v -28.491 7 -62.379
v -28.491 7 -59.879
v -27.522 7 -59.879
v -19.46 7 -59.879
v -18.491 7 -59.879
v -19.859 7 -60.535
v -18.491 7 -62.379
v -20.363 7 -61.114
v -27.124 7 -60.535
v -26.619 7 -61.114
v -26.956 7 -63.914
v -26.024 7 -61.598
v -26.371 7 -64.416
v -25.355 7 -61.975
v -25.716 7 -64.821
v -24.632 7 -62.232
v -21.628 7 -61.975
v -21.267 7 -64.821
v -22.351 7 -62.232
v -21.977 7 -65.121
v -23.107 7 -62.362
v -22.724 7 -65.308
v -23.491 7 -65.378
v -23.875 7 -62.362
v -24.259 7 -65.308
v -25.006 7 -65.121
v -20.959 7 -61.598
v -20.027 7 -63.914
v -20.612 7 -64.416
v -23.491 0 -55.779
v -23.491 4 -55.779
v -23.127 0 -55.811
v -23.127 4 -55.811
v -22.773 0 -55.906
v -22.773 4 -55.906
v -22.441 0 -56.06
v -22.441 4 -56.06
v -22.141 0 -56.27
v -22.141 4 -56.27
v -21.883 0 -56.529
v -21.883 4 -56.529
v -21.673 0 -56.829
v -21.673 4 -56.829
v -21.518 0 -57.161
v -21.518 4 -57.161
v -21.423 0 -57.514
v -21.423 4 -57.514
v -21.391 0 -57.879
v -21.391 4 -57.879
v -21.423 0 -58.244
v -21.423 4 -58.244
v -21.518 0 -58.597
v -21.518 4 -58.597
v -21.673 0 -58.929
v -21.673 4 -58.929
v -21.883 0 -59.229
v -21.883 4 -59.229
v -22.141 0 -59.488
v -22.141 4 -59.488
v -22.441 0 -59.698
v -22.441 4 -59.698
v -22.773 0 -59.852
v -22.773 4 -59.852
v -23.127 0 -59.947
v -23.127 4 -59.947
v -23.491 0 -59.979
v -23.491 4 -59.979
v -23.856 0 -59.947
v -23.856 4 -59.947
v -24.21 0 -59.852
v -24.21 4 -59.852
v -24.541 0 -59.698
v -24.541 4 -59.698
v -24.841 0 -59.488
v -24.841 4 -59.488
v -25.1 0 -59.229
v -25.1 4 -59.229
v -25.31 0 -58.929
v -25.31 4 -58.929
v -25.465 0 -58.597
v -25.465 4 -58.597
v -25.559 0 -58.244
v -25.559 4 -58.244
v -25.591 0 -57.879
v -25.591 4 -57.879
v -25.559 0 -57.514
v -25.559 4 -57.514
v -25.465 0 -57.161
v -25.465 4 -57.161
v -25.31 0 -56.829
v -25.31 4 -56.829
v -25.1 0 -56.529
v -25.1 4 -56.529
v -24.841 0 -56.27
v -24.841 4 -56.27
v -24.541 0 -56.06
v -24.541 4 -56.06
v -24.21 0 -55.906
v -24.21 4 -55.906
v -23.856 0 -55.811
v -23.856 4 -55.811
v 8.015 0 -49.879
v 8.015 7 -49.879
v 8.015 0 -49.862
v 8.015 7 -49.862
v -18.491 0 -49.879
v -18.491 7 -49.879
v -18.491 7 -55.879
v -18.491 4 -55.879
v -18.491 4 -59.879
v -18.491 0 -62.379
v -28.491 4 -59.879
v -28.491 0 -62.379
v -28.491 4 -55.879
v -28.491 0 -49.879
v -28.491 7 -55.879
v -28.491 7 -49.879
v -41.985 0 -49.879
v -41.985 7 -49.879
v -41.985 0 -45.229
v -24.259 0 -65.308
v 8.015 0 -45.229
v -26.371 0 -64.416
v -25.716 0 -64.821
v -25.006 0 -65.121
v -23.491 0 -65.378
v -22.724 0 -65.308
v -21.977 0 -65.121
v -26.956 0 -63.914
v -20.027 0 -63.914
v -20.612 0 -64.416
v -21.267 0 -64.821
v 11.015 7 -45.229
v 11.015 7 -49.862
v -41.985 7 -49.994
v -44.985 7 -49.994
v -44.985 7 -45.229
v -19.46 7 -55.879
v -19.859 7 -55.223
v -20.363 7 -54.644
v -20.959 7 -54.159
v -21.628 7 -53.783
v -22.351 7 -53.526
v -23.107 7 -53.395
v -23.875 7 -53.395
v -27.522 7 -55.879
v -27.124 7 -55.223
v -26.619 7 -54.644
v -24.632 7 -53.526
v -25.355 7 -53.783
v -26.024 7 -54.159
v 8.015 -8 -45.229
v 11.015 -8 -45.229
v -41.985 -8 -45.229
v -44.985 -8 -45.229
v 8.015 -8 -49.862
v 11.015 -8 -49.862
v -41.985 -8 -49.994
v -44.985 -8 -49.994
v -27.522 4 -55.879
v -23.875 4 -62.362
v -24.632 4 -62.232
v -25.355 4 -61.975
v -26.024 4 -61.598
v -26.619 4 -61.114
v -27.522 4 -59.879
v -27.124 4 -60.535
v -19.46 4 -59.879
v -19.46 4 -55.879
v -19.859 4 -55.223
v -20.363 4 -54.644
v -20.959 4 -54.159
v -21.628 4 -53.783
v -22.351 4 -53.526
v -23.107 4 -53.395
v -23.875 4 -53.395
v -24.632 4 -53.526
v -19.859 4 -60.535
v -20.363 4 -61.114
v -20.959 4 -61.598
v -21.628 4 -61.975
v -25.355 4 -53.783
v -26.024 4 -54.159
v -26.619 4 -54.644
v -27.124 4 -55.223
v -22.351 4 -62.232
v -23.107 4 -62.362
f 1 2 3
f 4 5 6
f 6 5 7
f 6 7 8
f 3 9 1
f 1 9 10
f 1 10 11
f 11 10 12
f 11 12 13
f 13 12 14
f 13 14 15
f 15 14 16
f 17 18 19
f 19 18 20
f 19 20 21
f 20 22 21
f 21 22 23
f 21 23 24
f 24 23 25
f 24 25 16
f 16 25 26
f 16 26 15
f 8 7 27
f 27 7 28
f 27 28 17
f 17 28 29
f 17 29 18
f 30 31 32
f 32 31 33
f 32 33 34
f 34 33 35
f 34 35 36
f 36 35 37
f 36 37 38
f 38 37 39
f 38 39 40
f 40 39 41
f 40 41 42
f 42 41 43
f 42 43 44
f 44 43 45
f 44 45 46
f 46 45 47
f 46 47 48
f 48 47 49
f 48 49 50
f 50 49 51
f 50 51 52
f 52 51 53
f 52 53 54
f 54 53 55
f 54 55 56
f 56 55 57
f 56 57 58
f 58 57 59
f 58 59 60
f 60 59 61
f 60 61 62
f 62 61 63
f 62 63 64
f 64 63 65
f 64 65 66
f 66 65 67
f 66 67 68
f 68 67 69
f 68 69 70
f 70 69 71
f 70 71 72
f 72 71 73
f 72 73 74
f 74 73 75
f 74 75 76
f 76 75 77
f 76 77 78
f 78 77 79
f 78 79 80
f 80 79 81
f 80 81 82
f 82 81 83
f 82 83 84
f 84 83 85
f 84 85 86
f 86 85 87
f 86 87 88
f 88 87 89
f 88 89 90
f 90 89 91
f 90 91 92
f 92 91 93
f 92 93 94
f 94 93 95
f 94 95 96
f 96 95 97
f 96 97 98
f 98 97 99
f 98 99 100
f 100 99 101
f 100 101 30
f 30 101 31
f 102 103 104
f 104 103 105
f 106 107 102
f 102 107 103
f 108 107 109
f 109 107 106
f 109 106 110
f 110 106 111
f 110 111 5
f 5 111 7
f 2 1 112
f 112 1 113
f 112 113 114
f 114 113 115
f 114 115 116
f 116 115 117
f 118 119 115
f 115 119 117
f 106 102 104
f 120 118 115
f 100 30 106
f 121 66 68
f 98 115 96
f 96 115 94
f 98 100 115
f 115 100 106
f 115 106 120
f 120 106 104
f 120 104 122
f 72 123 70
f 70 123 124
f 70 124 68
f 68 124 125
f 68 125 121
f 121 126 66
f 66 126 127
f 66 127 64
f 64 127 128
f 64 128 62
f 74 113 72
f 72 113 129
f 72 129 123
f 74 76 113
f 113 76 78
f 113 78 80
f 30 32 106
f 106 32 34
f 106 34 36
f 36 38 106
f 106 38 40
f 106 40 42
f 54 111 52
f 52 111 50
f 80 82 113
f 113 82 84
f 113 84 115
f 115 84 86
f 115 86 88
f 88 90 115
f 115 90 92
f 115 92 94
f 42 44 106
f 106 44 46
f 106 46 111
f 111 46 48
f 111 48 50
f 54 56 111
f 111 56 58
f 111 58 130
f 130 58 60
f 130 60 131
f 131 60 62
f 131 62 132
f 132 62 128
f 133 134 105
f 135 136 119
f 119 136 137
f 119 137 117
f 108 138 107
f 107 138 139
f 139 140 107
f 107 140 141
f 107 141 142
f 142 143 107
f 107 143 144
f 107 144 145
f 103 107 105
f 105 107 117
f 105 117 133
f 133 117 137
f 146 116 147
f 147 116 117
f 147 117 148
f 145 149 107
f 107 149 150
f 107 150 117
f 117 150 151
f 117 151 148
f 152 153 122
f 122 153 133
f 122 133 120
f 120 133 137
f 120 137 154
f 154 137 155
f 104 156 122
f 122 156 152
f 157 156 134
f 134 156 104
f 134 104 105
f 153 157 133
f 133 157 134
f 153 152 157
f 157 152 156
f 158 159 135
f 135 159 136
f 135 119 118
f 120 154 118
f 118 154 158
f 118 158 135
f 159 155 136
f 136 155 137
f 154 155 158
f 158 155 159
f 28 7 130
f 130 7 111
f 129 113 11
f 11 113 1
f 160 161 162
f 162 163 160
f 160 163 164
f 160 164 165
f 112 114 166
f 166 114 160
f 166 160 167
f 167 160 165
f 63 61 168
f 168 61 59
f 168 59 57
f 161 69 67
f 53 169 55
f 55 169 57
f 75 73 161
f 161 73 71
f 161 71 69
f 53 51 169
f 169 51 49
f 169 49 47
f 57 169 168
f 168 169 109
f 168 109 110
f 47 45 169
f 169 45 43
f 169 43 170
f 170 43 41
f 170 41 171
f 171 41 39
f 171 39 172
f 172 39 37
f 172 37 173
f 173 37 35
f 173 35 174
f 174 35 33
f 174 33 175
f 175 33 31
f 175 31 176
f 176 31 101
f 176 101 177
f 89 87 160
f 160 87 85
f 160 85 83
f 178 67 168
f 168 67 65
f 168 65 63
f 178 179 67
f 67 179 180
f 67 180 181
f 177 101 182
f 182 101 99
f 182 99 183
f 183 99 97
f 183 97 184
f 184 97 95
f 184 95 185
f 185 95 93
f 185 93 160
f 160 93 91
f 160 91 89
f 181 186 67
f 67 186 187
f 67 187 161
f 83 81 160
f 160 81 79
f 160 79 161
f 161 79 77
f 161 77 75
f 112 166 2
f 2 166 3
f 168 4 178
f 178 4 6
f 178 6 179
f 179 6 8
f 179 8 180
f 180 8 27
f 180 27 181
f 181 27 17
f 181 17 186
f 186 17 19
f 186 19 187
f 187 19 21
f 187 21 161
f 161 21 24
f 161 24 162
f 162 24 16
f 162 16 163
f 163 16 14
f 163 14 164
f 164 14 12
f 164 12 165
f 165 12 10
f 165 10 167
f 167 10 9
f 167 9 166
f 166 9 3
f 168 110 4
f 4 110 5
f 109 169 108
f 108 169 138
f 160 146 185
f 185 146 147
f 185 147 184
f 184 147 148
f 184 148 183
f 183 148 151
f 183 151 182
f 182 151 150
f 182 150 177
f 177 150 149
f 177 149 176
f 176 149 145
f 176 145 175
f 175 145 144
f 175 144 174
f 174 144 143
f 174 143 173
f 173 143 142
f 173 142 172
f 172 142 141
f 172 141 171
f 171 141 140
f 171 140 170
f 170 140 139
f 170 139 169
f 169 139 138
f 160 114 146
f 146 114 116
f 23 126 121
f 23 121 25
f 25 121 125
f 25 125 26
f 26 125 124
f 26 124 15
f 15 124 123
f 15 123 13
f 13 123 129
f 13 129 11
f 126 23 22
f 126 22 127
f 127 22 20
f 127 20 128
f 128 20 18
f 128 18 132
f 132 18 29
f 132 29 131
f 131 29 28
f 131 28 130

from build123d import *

# Parameters (mm, degrees)
SKETCH1_W           = 50
SKETCH1_H           = 100
BOSS_EXTRUDE1_DEPTH = 7
CUT_EXTRUDE1_DEPTH  = 10
CUT_EXTRUDE2_DEPTH  = 28
SKETCH5_W           = 3
SKETCH5_H           = 4.633494333
SKETCH5_H_2         = 4.765216978
BOSS_EXTRUDE2_DEPTH = 15
SKETCH6_R           = 2.1
CUT_EXTRUDE3_DEPTH  = 15
CHAMFER1_SIZE       = 3
CUT_EXTRUDE4_DEPTH  = 3
FILLET1_R           = 5
SKETCH8_W           = 66.498468349
SKETCH8_H           = 65.695900627
CUT_EXTRUDE5_DEPTH  = 29


with BuildPart() as part:
    # Sketch1 → Boss-Extrude1 (new body)
    with BuildSketch(Plane(origin=(0, 0, 0), x_dir=(1, 0, 0), z_dir=(0, 1, 0))):
        with Locations((-16.984615004, 32.878894954)):
            Rectangle(SKETCH1_W, SKETCH1_H)
    extrude(amount=BOSS_EXTRUDE1_DEPTH)

    # Sketch2 → Cut-Extrude1 (cut)
    with BuildSketch(Plane.XZ):
        Polygon((8.015384996, -49.878894954), (6.015384996, -49.878894954), (-18.491384598, -49.878894954), (-18.491384598, -50.378894954), (-18.491384598, -65.378894954), (-28.491384598, -65.378894954), (-28.491384598, -50.378894954), (-28.491384598, -49.878894954), (-39.984615004, -49.878894954), (-41.984615004, -49.878894954), (-41.984615004, -82.878894954), (8.015384996, -82.878894954), align=None)
    extrude(amount=-CUT_EXTRUDE1_DEPTH, mode=Mode.SUBTRACT)

    # Sketch4 → Cut-Extrude2 (cut)
    with BuildSketch(Plane.XZ):
        Polygon((8.015384996, -42.228894954), (-0.484615004, -42.228894954), (-33.484615004, -42.228894954), (-41.984615004, -42.228894954), (-41.984615004, -45.228894954), (-33.484615004, -45.228894954), (-0.484615004, -45.228894954), (8.015384996, -45.228894954), align=None)
    extrude(amount=-CUT_EXTRUDE2_DEPTH, mode=Mode.SUBTRACT)


with BuildPart() as cut_extrude2_piece_1:
    # of the separate pieces the step leaves, piece 1, a body of its own (cut_extrude2_pieces)
    add(part.part.solids().sort_by_distance((8.015384996, 0, 17.121105046))[0])

    # Sketch8 → Cut-Extrude5 (cut)
    with BuildSketch(Plane(origin=(0, 7, 0), x_dir=(1, 0, 0), z_dir=(0, 1, 0))):
        with Locations((-10.449420701, 11.294291779)):
            Rectangle(SKETCH8_W, SKETCH8_H)
    extrude(amount=-CUT_EXTRUDE5_DEPTH, mode=Mode.SUBTRACT)


with BuildPart() as cut_extrude2_piece_2:
    # of the separate pieces the step leaves, piece 2, a body of its own (cut_extrude2_pieces)
    add(part.part.solids().sort_by_distance((8.015384996, 0, -49.878894954))[0])

    # Sketch5 → Boss-Extrude2 (add)
    with BuildSketch(Plane(origin=(0, 7, 0), x_dir=(1, 0, 0), z_dir=(0, 1, 0))):
        with Locations((9.515384996, 47.545642121)):
            Rectangle(SKETCH5_W, SKETCH5_H)
        with Locations((-43.484615004, 47.611503443)):
            Rectangle(SKETCH5_W, SKETCH5_H_2)
    extrude(amount=-BOSS_EXTRUDE2_DEPTH)

    # Sketch6 → Cut-Extrude3 (cut)
    with BuildSketch(Plane(origin=(0, 7, 0), x_dir=(1, 0, 0), z_dir=(0, 1, 0))):
        with Locations(Location((-23.491299754, 57.878894954, 0), (0, 0, 270))):
            Circle(SKETCH6_R)
    extrude(amount=-CUT_EXTRUDE3_DEPTH, mode=Mode.SUBTRACT)

    # Chamfer1
    chamfer1_edges = [cut_extrude2_piece_2.edges().sort_by_distance(p)[0] for p in [
        (-28.491384598, 3.5, -65.378894954),
        (-18.491384598, 3.5, -65.378894954),
    ]]
    chamfer(chamfer1_edges, length=CHAMFER1_SIZE)

    # Sketch7 → Cut-Extrude4 (cut)
    with BuildSketch(Plane(origin=(0, 7, 0), x_dir=(1, 0, 0), z_dir=(0, 1, 0))):
        with BuildLine():
            Line((-28.491384598, 55.878894954), (-27.522428628, 55.878894954))
            ThreePointArc((-27.522428628, 55.878894954), (-23.491299754, 53.378894954), (-19.46017088, 55.878894954))
            Line((-19.46017088, 55.878894954), (-18.491384598, 55.878894954))
            Line((-18.491384598, 55.878894954), (-18.491384598, 59.878894954))
            Line((-18.491384598, 59.878894954), (-19.46017088, 59.878894954))
            ThreePointArc((-19.46017088, 59.878894954), (-23.491299754, 62.378894954), (-27.522428628, 59.878894954))
            Line((-27.522428628, 59.878894954), (-28.491384598, 59.878894954))
            Line((-28.491384598, 59.878894954), (-28.491384598, 55.878894954))
        make_face()
    extrude(amount=-CUT_EXTRUDE4_DEPTH, mode=Mode.SUBTRACT)

    # Fillet1
    # the kernel refuses this fillet: 5 mm, written as the material it takes off along each edge
    with BuildSketch(Plane(origin=(-21.491384598, -5.17766953, -65.378894954), x_dir=(0.7071067811865483, 0, 0.7071067811865466), z_dir=(0, 1, 0)), Plane(origin=(-25.491384598, -5.17766953, -65.378894954), x_dir=(1, 0, 0), z_dir=(0, 1, 0))) as fillet1_piece_1:
        with BuildLine():
            CenterArc((FILLET1_R * 0.414213562373, -FILLET1_R), FILLET1_R, 90, 45)
            Line((-FILLET1_R * 0.292893218813, -FILLET1_R * 0.292893218813), (0, 0))
            Line((0, 0), (FILLET1_R * 0.414213562373, 0))
        make_face()
    extrude(amount=17.355339059, mode=Mode.SUBTRACT)


solid = cut_extrude2_piece_2.part
